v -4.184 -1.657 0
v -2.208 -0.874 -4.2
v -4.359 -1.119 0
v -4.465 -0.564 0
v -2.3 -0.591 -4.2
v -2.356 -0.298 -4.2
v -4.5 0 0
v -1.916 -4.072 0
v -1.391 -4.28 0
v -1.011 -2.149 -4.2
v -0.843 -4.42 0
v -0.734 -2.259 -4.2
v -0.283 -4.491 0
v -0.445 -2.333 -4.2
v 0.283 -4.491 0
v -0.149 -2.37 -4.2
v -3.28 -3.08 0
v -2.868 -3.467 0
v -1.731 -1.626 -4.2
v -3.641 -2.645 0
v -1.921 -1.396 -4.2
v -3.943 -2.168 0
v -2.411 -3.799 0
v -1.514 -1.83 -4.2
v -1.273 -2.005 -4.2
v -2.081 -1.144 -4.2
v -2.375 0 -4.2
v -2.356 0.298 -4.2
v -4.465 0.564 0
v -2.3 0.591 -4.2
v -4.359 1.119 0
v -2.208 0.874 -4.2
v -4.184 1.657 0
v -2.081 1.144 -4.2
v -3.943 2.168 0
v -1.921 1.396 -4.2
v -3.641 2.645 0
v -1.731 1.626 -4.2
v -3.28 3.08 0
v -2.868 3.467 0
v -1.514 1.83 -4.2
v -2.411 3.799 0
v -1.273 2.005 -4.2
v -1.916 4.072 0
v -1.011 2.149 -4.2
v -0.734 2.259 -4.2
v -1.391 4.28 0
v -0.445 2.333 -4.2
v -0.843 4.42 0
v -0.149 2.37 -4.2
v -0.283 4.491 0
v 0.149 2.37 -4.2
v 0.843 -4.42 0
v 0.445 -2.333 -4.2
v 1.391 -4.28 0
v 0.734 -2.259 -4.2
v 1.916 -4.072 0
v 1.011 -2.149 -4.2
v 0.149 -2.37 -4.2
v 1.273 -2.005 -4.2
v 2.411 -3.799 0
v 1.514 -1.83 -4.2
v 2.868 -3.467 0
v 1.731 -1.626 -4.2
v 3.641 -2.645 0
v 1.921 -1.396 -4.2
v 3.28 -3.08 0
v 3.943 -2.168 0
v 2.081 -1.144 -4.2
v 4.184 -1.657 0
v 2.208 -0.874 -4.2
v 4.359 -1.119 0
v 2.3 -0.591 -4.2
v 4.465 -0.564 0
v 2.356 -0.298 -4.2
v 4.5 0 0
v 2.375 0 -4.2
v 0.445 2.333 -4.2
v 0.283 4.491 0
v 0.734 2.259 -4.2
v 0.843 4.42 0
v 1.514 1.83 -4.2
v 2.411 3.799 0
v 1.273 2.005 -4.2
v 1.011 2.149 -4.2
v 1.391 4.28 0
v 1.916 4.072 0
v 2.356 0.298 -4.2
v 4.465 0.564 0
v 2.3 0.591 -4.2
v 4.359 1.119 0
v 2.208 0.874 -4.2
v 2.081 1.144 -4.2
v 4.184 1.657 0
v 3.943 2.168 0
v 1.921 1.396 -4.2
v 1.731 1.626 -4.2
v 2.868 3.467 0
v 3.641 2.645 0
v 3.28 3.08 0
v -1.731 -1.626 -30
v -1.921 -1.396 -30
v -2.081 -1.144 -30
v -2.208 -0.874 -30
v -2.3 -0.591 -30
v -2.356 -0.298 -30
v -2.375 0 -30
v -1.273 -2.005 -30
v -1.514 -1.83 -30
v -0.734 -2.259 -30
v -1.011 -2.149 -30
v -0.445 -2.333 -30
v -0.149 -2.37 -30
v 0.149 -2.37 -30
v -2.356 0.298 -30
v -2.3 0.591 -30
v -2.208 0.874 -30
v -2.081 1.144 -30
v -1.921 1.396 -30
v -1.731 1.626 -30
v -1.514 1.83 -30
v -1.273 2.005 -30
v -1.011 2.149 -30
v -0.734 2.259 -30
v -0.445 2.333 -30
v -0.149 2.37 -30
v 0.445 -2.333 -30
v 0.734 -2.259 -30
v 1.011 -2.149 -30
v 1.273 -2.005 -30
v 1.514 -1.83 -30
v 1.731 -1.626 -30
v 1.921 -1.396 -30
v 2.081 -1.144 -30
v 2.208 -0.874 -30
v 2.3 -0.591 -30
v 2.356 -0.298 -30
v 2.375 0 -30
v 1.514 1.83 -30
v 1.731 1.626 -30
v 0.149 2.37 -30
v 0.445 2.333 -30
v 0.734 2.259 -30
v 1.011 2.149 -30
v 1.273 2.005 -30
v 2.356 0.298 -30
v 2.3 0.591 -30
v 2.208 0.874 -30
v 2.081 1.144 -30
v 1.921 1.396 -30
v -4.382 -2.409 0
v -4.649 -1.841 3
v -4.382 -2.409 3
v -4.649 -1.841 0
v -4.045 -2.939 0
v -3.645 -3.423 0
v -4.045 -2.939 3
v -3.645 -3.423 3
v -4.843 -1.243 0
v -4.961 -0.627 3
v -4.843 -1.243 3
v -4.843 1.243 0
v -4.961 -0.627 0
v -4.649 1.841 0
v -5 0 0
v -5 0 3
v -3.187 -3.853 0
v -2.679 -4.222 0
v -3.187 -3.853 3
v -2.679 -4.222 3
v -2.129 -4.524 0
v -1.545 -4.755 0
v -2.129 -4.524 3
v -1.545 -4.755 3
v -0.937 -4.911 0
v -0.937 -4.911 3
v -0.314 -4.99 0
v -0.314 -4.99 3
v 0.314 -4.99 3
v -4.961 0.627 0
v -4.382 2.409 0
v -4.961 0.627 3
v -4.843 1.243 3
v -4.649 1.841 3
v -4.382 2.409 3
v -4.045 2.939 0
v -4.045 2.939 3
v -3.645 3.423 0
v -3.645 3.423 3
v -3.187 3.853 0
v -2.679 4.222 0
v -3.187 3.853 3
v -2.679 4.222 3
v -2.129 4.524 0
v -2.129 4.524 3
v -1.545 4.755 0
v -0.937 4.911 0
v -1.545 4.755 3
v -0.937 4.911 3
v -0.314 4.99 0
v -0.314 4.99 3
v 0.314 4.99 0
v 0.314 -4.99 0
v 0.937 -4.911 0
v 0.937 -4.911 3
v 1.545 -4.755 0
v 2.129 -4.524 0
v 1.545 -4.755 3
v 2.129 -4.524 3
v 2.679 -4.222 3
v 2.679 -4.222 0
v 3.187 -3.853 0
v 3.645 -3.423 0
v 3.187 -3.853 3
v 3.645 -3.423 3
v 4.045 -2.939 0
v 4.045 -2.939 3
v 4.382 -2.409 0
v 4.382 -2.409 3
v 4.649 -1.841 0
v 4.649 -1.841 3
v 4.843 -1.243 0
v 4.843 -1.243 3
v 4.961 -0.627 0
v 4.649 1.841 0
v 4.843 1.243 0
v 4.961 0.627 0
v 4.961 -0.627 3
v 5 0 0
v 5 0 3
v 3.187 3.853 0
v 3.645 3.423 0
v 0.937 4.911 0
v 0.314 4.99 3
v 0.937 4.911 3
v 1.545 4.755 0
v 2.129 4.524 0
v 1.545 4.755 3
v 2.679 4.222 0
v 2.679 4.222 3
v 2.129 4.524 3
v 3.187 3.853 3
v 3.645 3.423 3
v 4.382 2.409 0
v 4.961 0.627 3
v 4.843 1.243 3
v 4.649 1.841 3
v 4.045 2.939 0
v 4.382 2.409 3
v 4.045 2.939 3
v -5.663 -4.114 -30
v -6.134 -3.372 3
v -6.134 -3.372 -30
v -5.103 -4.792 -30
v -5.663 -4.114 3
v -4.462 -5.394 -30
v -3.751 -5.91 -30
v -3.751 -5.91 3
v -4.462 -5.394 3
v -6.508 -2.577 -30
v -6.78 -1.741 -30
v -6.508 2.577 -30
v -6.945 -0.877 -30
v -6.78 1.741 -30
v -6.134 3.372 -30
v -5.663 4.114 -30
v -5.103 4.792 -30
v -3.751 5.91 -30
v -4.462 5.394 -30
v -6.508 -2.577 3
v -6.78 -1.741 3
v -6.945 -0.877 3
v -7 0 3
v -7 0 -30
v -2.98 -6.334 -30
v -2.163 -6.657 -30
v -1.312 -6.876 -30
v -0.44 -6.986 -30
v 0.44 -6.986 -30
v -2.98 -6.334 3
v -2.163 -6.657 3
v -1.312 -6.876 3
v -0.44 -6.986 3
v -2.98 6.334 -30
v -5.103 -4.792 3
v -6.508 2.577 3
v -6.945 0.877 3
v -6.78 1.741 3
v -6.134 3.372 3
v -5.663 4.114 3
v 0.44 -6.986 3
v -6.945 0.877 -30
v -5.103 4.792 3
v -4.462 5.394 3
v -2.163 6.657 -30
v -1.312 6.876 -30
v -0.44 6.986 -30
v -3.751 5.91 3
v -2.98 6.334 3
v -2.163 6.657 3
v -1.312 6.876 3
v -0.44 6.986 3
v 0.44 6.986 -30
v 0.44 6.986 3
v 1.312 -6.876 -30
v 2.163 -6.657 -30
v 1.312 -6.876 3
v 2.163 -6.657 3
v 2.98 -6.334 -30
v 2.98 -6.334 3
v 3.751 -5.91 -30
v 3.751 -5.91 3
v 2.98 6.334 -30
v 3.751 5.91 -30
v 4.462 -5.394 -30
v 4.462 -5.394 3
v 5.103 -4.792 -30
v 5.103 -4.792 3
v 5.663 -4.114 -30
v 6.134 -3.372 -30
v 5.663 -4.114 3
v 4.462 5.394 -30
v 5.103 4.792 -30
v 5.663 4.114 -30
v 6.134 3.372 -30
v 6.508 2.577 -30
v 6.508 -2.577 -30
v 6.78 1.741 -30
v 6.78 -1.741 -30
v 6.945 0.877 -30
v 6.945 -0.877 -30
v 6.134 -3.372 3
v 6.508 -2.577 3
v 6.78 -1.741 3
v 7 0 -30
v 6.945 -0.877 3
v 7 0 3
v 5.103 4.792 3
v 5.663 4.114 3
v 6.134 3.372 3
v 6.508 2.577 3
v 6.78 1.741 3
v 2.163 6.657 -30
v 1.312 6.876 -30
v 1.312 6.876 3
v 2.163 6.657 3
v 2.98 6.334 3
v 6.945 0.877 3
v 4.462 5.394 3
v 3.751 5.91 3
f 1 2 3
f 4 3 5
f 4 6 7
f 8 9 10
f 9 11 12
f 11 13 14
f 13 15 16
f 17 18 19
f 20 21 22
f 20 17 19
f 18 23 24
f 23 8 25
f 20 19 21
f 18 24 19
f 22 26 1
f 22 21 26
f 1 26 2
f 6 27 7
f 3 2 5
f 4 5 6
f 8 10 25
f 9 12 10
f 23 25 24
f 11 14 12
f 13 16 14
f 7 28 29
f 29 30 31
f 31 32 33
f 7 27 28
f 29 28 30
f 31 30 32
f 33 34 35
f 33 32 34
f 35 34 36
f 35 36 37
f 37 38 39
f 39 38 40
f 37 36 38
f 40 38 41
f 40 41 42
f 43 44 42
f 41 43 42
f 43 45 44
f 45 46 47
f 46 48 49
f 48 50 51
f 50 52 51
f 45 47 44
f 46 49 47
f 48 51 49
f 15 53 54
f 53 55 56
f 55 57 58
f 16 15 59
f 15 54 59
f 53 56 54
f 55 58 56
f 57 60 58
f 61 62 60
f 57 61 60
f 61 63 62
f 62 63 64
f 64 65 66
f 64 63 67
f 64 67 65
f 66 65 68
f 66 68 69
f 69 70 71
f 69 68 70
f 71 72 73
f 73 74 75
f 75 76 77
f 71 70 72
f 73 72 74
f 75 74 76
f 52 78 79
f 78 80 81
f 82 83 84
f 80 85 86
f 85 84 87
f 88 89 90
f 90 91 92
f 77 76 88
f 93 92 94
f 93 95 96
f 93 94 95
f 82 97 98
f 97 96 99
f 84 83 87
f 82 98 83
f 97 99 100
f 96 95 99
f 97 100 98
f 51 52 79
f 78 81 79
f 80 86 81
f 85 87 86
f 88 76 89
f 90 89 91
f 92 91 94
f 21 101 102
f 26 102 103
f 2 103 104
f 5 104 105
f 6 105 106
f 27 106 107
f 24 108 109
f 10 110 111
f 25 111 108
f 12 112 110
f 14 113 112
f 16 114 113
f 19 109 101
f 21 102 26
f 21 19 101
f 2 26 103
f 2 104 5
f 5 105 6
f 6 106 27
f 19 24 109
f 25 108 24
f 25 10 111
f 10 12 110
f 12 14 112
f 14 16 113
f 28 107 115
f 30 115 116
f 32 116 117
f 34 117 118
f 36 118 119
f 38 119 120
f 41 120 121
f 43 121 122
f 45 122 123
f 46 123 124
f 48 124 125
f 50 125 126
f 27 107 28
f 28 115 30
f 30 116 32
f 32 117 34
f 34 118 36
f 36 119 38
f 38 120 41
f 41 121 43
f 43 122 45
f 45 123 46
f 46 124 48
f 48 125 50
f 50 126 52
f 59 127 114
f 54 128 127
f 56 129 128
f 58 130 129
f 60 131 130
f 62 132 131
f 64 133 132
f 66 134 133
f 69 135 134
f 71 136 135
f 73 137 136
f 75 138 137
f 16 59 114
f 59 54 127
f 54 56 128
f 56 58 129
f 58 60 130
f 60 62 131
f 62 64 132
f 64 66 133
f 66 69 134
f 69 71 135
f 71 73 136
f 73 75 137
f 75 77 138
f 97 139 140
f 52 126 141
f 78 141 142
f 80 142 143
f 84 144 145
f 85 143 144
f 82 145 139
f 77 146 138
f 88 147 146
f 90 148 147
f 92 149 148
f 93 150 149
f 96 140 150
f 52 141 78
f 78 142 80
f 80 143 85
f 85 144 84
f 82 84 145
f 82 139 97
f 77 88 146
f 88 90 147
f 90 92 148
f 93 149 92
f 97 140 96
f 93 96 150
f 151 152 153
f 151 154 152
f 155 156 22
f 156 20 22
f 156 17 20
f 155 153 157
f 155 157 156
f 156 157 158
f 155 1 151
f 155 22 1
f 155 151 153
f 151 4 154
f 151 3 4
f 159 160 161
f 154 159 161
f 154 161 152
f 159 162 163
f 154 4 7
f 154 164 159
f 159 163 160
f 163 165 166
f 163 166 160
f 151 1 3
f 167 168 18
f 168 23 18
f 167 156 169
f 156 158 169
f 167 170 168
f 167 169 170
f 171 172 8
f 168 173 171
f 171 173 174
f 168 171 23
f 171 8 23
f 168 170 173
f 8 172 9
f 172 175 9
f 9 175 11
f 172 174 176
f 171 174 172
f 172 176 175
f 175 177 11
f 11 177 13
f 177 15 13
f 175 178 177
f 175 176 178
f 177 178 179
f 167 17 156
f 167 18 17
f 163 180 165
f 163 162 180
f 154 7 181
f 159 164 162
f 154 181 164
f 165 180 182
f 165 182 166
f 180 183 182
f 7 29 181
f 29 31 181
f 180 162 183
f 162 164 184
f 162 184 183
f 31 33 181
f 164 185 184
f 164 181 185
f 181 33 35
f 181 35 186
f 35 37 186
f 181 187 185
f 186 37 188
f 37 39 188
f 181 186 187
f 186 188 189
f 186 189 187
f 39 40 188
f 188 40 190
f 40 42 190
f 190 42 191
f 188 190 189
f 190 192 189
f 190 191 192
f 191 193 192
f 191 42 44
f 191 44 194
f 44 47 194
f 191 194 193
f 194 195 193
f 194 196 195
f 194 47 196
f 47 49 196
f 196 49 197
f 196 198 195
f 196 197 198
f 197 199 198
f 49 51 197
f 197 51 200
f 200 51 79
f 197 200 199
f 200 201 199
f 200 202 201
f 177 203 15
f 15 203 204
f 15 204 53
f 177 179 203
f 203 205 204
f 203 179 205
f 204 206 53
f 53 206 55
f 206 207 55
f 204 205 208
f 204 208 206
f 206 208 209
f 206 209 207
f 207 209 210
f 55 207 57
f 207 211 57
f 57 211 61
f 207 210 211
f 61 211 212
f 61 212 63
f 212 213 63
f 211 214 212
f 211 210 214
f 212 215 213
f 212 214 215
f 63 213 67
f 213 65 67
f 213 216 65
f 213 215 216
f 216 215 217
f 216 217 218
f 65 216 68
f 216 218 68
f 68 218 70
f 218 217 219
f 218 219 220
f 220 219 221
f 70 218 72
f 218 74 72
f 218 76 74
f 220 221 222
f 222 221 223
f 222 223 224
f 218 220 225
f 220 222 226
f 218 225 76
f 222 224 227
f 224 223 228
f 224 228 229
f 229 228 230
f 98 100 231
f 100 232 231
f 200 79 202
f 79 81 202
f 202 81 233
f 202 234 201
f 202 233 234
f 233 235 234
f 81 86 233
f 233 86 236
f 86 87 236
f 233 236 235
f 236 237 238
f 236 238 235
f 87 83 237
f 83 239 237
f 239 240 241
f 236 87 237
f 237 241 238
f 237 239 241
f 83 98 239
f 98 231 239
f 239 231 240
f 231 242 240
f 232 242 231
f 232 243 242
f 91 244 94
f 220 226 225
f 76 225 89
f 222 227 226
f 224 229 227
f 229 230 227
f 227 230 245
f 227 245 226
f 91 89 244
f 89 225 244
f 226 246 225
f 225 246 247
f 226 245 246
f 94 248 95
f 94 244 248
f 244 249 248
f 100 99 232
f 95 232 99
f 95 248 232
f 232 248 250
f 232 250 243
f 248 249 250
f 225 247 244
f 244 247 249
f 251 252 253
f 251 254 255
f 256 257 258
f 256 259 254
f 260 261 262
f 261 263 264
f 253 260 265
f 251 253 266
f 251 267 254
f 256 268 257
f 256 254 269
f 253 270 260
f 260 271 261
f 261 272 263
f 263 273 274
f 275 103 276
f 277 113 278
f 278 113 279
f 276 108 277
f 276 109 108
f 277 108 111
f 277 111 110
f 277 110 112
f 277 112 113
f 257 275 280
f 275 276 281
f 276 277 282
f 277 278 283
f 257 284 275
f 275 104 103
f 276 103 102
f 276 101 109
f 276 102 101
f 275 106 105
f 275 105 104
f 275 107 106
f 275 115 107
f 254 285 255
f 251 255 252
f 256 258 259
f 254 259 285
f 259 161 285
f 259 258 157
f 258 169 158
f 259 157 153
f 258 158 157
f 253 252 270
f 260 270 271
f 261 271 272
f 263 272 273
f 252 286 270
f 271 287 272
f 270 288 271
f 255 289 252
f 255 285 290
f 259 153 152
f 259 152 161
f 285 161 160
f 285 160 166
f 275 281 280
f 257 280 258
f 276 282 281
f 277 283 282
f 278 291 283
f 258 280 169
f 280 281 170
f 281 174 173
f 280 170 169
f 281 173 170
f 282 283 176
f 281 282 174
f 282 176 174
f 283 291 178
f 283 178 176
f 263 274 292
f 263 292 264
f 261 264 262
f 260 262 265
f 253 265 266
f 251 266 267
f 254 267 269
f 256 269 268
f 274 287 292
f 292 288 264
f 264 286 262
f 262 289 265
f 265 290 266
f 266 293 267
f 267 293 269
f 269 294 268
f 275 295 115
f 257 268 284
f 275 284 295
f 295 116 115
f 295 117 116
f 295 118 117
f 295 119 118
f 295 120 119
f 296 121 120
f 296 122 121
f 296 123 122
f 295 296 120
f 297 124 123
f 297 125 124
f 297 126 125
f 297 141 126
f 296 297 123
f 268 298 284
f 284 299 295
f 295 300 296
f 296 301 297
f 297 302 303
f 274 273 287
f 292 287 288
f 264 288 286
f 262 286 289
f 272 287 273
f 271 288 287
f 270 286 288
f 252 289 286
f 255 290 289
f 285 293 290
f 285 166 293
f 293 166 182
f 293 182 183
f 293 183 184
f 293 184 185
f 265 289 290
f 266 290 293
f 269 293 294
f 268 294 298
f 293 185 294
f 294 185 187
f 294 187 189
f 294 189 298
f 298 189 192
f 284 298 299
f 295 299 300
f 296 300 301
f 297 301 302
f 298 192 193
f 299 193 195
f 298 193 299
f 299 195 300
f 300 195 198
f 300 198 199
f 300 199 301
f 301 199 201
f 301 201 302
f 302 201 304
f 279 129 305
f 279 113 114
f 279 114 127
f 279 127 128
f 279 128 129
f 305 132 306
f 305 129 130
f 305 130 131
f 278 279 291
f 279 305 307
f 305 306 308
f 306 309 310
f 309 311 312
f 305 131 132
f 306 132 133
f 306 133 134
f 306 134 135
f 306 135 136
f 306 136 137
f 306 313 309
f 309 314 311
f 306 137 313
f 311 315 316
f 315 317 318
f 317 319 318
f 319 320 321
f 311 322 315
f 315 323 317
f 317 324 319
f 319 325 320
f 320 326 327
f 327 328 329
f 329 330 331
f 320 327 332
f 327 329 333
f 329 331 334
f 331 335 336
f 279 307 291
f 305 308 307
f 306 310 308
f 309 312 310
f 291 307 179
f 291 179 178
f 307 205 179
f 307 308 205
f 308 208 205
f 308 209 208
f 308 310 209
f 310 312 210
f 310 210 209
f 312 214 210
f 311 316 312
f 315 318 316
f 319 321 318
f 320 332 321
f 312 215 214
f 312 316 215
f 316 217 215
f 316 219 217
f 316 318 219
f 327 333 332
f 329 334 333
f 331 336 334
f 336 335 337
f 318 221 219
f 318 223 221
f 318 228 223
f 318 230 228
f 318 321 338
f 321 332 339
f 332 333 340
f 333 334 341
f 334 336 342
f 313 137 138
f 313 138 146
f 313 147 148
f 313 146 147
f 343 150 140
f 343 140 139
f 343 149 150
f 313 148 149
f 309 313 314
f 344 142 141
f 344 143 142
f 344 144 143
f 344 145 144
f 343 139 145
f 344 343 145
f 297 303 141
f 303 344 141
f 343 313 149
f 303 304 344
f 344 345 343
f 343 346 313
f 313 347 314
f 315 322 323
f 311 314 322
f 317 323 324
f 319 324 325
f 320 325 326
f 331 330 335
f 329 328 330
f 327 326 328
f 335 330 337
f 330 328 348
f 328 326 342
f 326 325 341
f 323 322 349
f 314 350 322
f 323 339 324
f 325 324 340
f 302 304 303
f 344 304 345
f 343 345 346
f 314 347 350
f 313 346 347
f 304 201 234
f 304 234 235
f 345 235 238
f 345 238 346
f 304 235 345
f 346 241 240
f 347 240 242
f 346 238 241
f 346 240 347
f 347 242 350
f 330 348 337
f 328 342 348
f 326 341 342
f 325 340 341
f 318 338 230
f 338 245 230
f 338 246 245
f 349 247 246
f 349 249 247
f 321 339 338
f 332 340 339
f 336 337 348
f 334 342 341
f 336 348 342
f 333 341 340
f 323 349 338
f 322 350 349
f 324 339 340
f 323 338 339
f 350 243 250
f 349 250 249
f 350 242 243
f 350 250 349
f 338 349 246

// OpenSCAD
$fn = 50;

difference() {
	union() {
		translate(v = [0, 0, -30.0]) {
			cylinder(h = 33, r = 7.0);
		}
	}
	union() {
		translate(v = [0, 0, 0]) {
			rotate(a = [0, 0, 0]) {
				difference() {
					union() {
						translate(v = [0, 0, -33.0]) {
							cylinder(h = 33, r = 2.25);
						}
						translate(v = [0, 0, -4.2]) {
							cylinder(h = 4.2, r1 = 2.375, r2 = 4.5);
						}
						translate(v = [0, 0, -33.0]) {
							cylinder(h = 33, r = 2.375);
						}
						translate(v = [0, 0, -33.0]) {
							cylinder(h = 33, r = 2.25);
						}
					}
					union();
				}
			}
		}
		#cylinder(h = 3, r = 5.0);
	}
}
